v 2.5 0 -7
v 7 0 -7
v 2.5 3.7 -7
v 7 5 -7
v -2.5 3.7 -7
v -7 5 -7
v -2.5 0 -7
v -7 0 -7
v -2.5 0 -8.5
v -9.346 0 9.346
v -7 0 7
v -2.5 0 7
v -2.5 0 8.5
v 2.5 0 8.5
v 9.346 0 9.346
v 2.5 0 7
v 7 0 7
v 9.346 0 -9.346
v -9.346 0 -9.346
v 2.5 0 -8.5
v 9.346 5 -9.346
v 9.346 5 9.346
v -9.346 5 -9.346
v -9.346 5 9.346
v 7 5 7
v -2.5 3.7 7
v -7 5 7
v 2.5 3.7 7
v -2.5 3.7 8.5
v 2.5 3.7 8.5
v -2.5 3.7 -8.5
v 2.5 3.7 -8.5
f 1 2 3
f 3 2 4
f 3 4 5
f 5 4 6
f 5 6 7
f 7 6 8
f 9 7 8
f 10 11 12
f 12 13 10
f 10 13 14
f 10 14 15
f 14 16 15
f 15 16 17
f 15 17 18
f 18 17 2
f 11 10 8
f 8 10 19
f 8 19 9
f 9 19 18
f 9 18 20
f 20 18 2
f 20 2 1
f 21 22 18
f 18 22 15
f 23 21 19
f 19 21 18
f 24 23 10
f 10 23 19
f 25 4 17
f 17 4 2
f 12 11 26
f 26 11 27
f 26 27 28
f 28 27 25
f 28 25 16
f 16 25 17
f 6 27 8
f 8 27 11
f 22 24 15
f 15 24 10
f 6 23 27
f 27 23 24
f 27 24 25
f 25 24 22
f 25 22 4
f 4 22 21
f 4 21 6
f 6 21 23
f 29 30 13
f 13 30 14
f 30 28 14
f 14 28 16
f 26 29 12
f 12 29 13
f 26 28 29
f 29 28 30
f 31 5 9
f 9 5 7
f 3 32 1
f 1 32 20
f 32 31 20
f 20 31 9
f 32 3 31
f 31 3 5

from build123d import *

# Parameters (mm, degrees)
BOSS_EXTRUDE2_DEPTH = 5
CUT_EXTRUDE1_DEPTH  = 3.7


with BuildPart() as part:
    # Sketch2 → Boss-Extrude2 (new body)
    with BuildSketch(Plane(origin=(0, 0, 0), x_dir=(1, 0, 0), z_dir=(0, 1, 0))):
        Polygon((-7, -7), (-7, 7), (-9.345690752, 9.345690752), (-9.345690752, -9.345690752), align=None)
        Polygon((-7, 7), (-2.5, 7), (-2.5, 8.5), (2.5, 8.5), (2.5, 7), (7, 7), (9.345690752, 9.345690752), (-9.345690752, 9.345690752), align=None)
        Polygon((-2.5, 7), (0, 7), (2.5, 7), (2.5, 8.5), (-2.5, 8.5), align=None)
        Polygon((9.345690752, -9.345690752), (9.345690752, 9.345690752), (7, 7), (7, -7), align=None)
        Polygon((7, -7), (2.5, -7), (2.5, -8.5), (-2.5, -8.5), (-2.5, -7), (-7, -7), (-9.345690752, -9.345690752), (9.345690752, -9.345690752), align=None)
        Polygon((2.5, -7), (0, -7), (-2.5, -7), (-2.5, -8.5), (2.5, -8.5), align=None)
    extrude(amount=BOSS_EXTRUDE2_DEPTH)

    # Sketch3 → Cut-Extrude1 (cut)
    with BuildSketch(Plane.XZ):
        Polygon((2.5, -7), (0, -7), (-2.5, -7), (-2.5, -8.5), (2.5, -8.5), align=None)
        Polygon((-2.5, 7), (0, 7), (2.5, 7), (2.5, 8.5), (-2.5, 8.5), align=None)
    extrude(amount=-CUT_EXTRUDE1_DEPTH, mode=Mode.SUBTRACT)


solid = part.part
